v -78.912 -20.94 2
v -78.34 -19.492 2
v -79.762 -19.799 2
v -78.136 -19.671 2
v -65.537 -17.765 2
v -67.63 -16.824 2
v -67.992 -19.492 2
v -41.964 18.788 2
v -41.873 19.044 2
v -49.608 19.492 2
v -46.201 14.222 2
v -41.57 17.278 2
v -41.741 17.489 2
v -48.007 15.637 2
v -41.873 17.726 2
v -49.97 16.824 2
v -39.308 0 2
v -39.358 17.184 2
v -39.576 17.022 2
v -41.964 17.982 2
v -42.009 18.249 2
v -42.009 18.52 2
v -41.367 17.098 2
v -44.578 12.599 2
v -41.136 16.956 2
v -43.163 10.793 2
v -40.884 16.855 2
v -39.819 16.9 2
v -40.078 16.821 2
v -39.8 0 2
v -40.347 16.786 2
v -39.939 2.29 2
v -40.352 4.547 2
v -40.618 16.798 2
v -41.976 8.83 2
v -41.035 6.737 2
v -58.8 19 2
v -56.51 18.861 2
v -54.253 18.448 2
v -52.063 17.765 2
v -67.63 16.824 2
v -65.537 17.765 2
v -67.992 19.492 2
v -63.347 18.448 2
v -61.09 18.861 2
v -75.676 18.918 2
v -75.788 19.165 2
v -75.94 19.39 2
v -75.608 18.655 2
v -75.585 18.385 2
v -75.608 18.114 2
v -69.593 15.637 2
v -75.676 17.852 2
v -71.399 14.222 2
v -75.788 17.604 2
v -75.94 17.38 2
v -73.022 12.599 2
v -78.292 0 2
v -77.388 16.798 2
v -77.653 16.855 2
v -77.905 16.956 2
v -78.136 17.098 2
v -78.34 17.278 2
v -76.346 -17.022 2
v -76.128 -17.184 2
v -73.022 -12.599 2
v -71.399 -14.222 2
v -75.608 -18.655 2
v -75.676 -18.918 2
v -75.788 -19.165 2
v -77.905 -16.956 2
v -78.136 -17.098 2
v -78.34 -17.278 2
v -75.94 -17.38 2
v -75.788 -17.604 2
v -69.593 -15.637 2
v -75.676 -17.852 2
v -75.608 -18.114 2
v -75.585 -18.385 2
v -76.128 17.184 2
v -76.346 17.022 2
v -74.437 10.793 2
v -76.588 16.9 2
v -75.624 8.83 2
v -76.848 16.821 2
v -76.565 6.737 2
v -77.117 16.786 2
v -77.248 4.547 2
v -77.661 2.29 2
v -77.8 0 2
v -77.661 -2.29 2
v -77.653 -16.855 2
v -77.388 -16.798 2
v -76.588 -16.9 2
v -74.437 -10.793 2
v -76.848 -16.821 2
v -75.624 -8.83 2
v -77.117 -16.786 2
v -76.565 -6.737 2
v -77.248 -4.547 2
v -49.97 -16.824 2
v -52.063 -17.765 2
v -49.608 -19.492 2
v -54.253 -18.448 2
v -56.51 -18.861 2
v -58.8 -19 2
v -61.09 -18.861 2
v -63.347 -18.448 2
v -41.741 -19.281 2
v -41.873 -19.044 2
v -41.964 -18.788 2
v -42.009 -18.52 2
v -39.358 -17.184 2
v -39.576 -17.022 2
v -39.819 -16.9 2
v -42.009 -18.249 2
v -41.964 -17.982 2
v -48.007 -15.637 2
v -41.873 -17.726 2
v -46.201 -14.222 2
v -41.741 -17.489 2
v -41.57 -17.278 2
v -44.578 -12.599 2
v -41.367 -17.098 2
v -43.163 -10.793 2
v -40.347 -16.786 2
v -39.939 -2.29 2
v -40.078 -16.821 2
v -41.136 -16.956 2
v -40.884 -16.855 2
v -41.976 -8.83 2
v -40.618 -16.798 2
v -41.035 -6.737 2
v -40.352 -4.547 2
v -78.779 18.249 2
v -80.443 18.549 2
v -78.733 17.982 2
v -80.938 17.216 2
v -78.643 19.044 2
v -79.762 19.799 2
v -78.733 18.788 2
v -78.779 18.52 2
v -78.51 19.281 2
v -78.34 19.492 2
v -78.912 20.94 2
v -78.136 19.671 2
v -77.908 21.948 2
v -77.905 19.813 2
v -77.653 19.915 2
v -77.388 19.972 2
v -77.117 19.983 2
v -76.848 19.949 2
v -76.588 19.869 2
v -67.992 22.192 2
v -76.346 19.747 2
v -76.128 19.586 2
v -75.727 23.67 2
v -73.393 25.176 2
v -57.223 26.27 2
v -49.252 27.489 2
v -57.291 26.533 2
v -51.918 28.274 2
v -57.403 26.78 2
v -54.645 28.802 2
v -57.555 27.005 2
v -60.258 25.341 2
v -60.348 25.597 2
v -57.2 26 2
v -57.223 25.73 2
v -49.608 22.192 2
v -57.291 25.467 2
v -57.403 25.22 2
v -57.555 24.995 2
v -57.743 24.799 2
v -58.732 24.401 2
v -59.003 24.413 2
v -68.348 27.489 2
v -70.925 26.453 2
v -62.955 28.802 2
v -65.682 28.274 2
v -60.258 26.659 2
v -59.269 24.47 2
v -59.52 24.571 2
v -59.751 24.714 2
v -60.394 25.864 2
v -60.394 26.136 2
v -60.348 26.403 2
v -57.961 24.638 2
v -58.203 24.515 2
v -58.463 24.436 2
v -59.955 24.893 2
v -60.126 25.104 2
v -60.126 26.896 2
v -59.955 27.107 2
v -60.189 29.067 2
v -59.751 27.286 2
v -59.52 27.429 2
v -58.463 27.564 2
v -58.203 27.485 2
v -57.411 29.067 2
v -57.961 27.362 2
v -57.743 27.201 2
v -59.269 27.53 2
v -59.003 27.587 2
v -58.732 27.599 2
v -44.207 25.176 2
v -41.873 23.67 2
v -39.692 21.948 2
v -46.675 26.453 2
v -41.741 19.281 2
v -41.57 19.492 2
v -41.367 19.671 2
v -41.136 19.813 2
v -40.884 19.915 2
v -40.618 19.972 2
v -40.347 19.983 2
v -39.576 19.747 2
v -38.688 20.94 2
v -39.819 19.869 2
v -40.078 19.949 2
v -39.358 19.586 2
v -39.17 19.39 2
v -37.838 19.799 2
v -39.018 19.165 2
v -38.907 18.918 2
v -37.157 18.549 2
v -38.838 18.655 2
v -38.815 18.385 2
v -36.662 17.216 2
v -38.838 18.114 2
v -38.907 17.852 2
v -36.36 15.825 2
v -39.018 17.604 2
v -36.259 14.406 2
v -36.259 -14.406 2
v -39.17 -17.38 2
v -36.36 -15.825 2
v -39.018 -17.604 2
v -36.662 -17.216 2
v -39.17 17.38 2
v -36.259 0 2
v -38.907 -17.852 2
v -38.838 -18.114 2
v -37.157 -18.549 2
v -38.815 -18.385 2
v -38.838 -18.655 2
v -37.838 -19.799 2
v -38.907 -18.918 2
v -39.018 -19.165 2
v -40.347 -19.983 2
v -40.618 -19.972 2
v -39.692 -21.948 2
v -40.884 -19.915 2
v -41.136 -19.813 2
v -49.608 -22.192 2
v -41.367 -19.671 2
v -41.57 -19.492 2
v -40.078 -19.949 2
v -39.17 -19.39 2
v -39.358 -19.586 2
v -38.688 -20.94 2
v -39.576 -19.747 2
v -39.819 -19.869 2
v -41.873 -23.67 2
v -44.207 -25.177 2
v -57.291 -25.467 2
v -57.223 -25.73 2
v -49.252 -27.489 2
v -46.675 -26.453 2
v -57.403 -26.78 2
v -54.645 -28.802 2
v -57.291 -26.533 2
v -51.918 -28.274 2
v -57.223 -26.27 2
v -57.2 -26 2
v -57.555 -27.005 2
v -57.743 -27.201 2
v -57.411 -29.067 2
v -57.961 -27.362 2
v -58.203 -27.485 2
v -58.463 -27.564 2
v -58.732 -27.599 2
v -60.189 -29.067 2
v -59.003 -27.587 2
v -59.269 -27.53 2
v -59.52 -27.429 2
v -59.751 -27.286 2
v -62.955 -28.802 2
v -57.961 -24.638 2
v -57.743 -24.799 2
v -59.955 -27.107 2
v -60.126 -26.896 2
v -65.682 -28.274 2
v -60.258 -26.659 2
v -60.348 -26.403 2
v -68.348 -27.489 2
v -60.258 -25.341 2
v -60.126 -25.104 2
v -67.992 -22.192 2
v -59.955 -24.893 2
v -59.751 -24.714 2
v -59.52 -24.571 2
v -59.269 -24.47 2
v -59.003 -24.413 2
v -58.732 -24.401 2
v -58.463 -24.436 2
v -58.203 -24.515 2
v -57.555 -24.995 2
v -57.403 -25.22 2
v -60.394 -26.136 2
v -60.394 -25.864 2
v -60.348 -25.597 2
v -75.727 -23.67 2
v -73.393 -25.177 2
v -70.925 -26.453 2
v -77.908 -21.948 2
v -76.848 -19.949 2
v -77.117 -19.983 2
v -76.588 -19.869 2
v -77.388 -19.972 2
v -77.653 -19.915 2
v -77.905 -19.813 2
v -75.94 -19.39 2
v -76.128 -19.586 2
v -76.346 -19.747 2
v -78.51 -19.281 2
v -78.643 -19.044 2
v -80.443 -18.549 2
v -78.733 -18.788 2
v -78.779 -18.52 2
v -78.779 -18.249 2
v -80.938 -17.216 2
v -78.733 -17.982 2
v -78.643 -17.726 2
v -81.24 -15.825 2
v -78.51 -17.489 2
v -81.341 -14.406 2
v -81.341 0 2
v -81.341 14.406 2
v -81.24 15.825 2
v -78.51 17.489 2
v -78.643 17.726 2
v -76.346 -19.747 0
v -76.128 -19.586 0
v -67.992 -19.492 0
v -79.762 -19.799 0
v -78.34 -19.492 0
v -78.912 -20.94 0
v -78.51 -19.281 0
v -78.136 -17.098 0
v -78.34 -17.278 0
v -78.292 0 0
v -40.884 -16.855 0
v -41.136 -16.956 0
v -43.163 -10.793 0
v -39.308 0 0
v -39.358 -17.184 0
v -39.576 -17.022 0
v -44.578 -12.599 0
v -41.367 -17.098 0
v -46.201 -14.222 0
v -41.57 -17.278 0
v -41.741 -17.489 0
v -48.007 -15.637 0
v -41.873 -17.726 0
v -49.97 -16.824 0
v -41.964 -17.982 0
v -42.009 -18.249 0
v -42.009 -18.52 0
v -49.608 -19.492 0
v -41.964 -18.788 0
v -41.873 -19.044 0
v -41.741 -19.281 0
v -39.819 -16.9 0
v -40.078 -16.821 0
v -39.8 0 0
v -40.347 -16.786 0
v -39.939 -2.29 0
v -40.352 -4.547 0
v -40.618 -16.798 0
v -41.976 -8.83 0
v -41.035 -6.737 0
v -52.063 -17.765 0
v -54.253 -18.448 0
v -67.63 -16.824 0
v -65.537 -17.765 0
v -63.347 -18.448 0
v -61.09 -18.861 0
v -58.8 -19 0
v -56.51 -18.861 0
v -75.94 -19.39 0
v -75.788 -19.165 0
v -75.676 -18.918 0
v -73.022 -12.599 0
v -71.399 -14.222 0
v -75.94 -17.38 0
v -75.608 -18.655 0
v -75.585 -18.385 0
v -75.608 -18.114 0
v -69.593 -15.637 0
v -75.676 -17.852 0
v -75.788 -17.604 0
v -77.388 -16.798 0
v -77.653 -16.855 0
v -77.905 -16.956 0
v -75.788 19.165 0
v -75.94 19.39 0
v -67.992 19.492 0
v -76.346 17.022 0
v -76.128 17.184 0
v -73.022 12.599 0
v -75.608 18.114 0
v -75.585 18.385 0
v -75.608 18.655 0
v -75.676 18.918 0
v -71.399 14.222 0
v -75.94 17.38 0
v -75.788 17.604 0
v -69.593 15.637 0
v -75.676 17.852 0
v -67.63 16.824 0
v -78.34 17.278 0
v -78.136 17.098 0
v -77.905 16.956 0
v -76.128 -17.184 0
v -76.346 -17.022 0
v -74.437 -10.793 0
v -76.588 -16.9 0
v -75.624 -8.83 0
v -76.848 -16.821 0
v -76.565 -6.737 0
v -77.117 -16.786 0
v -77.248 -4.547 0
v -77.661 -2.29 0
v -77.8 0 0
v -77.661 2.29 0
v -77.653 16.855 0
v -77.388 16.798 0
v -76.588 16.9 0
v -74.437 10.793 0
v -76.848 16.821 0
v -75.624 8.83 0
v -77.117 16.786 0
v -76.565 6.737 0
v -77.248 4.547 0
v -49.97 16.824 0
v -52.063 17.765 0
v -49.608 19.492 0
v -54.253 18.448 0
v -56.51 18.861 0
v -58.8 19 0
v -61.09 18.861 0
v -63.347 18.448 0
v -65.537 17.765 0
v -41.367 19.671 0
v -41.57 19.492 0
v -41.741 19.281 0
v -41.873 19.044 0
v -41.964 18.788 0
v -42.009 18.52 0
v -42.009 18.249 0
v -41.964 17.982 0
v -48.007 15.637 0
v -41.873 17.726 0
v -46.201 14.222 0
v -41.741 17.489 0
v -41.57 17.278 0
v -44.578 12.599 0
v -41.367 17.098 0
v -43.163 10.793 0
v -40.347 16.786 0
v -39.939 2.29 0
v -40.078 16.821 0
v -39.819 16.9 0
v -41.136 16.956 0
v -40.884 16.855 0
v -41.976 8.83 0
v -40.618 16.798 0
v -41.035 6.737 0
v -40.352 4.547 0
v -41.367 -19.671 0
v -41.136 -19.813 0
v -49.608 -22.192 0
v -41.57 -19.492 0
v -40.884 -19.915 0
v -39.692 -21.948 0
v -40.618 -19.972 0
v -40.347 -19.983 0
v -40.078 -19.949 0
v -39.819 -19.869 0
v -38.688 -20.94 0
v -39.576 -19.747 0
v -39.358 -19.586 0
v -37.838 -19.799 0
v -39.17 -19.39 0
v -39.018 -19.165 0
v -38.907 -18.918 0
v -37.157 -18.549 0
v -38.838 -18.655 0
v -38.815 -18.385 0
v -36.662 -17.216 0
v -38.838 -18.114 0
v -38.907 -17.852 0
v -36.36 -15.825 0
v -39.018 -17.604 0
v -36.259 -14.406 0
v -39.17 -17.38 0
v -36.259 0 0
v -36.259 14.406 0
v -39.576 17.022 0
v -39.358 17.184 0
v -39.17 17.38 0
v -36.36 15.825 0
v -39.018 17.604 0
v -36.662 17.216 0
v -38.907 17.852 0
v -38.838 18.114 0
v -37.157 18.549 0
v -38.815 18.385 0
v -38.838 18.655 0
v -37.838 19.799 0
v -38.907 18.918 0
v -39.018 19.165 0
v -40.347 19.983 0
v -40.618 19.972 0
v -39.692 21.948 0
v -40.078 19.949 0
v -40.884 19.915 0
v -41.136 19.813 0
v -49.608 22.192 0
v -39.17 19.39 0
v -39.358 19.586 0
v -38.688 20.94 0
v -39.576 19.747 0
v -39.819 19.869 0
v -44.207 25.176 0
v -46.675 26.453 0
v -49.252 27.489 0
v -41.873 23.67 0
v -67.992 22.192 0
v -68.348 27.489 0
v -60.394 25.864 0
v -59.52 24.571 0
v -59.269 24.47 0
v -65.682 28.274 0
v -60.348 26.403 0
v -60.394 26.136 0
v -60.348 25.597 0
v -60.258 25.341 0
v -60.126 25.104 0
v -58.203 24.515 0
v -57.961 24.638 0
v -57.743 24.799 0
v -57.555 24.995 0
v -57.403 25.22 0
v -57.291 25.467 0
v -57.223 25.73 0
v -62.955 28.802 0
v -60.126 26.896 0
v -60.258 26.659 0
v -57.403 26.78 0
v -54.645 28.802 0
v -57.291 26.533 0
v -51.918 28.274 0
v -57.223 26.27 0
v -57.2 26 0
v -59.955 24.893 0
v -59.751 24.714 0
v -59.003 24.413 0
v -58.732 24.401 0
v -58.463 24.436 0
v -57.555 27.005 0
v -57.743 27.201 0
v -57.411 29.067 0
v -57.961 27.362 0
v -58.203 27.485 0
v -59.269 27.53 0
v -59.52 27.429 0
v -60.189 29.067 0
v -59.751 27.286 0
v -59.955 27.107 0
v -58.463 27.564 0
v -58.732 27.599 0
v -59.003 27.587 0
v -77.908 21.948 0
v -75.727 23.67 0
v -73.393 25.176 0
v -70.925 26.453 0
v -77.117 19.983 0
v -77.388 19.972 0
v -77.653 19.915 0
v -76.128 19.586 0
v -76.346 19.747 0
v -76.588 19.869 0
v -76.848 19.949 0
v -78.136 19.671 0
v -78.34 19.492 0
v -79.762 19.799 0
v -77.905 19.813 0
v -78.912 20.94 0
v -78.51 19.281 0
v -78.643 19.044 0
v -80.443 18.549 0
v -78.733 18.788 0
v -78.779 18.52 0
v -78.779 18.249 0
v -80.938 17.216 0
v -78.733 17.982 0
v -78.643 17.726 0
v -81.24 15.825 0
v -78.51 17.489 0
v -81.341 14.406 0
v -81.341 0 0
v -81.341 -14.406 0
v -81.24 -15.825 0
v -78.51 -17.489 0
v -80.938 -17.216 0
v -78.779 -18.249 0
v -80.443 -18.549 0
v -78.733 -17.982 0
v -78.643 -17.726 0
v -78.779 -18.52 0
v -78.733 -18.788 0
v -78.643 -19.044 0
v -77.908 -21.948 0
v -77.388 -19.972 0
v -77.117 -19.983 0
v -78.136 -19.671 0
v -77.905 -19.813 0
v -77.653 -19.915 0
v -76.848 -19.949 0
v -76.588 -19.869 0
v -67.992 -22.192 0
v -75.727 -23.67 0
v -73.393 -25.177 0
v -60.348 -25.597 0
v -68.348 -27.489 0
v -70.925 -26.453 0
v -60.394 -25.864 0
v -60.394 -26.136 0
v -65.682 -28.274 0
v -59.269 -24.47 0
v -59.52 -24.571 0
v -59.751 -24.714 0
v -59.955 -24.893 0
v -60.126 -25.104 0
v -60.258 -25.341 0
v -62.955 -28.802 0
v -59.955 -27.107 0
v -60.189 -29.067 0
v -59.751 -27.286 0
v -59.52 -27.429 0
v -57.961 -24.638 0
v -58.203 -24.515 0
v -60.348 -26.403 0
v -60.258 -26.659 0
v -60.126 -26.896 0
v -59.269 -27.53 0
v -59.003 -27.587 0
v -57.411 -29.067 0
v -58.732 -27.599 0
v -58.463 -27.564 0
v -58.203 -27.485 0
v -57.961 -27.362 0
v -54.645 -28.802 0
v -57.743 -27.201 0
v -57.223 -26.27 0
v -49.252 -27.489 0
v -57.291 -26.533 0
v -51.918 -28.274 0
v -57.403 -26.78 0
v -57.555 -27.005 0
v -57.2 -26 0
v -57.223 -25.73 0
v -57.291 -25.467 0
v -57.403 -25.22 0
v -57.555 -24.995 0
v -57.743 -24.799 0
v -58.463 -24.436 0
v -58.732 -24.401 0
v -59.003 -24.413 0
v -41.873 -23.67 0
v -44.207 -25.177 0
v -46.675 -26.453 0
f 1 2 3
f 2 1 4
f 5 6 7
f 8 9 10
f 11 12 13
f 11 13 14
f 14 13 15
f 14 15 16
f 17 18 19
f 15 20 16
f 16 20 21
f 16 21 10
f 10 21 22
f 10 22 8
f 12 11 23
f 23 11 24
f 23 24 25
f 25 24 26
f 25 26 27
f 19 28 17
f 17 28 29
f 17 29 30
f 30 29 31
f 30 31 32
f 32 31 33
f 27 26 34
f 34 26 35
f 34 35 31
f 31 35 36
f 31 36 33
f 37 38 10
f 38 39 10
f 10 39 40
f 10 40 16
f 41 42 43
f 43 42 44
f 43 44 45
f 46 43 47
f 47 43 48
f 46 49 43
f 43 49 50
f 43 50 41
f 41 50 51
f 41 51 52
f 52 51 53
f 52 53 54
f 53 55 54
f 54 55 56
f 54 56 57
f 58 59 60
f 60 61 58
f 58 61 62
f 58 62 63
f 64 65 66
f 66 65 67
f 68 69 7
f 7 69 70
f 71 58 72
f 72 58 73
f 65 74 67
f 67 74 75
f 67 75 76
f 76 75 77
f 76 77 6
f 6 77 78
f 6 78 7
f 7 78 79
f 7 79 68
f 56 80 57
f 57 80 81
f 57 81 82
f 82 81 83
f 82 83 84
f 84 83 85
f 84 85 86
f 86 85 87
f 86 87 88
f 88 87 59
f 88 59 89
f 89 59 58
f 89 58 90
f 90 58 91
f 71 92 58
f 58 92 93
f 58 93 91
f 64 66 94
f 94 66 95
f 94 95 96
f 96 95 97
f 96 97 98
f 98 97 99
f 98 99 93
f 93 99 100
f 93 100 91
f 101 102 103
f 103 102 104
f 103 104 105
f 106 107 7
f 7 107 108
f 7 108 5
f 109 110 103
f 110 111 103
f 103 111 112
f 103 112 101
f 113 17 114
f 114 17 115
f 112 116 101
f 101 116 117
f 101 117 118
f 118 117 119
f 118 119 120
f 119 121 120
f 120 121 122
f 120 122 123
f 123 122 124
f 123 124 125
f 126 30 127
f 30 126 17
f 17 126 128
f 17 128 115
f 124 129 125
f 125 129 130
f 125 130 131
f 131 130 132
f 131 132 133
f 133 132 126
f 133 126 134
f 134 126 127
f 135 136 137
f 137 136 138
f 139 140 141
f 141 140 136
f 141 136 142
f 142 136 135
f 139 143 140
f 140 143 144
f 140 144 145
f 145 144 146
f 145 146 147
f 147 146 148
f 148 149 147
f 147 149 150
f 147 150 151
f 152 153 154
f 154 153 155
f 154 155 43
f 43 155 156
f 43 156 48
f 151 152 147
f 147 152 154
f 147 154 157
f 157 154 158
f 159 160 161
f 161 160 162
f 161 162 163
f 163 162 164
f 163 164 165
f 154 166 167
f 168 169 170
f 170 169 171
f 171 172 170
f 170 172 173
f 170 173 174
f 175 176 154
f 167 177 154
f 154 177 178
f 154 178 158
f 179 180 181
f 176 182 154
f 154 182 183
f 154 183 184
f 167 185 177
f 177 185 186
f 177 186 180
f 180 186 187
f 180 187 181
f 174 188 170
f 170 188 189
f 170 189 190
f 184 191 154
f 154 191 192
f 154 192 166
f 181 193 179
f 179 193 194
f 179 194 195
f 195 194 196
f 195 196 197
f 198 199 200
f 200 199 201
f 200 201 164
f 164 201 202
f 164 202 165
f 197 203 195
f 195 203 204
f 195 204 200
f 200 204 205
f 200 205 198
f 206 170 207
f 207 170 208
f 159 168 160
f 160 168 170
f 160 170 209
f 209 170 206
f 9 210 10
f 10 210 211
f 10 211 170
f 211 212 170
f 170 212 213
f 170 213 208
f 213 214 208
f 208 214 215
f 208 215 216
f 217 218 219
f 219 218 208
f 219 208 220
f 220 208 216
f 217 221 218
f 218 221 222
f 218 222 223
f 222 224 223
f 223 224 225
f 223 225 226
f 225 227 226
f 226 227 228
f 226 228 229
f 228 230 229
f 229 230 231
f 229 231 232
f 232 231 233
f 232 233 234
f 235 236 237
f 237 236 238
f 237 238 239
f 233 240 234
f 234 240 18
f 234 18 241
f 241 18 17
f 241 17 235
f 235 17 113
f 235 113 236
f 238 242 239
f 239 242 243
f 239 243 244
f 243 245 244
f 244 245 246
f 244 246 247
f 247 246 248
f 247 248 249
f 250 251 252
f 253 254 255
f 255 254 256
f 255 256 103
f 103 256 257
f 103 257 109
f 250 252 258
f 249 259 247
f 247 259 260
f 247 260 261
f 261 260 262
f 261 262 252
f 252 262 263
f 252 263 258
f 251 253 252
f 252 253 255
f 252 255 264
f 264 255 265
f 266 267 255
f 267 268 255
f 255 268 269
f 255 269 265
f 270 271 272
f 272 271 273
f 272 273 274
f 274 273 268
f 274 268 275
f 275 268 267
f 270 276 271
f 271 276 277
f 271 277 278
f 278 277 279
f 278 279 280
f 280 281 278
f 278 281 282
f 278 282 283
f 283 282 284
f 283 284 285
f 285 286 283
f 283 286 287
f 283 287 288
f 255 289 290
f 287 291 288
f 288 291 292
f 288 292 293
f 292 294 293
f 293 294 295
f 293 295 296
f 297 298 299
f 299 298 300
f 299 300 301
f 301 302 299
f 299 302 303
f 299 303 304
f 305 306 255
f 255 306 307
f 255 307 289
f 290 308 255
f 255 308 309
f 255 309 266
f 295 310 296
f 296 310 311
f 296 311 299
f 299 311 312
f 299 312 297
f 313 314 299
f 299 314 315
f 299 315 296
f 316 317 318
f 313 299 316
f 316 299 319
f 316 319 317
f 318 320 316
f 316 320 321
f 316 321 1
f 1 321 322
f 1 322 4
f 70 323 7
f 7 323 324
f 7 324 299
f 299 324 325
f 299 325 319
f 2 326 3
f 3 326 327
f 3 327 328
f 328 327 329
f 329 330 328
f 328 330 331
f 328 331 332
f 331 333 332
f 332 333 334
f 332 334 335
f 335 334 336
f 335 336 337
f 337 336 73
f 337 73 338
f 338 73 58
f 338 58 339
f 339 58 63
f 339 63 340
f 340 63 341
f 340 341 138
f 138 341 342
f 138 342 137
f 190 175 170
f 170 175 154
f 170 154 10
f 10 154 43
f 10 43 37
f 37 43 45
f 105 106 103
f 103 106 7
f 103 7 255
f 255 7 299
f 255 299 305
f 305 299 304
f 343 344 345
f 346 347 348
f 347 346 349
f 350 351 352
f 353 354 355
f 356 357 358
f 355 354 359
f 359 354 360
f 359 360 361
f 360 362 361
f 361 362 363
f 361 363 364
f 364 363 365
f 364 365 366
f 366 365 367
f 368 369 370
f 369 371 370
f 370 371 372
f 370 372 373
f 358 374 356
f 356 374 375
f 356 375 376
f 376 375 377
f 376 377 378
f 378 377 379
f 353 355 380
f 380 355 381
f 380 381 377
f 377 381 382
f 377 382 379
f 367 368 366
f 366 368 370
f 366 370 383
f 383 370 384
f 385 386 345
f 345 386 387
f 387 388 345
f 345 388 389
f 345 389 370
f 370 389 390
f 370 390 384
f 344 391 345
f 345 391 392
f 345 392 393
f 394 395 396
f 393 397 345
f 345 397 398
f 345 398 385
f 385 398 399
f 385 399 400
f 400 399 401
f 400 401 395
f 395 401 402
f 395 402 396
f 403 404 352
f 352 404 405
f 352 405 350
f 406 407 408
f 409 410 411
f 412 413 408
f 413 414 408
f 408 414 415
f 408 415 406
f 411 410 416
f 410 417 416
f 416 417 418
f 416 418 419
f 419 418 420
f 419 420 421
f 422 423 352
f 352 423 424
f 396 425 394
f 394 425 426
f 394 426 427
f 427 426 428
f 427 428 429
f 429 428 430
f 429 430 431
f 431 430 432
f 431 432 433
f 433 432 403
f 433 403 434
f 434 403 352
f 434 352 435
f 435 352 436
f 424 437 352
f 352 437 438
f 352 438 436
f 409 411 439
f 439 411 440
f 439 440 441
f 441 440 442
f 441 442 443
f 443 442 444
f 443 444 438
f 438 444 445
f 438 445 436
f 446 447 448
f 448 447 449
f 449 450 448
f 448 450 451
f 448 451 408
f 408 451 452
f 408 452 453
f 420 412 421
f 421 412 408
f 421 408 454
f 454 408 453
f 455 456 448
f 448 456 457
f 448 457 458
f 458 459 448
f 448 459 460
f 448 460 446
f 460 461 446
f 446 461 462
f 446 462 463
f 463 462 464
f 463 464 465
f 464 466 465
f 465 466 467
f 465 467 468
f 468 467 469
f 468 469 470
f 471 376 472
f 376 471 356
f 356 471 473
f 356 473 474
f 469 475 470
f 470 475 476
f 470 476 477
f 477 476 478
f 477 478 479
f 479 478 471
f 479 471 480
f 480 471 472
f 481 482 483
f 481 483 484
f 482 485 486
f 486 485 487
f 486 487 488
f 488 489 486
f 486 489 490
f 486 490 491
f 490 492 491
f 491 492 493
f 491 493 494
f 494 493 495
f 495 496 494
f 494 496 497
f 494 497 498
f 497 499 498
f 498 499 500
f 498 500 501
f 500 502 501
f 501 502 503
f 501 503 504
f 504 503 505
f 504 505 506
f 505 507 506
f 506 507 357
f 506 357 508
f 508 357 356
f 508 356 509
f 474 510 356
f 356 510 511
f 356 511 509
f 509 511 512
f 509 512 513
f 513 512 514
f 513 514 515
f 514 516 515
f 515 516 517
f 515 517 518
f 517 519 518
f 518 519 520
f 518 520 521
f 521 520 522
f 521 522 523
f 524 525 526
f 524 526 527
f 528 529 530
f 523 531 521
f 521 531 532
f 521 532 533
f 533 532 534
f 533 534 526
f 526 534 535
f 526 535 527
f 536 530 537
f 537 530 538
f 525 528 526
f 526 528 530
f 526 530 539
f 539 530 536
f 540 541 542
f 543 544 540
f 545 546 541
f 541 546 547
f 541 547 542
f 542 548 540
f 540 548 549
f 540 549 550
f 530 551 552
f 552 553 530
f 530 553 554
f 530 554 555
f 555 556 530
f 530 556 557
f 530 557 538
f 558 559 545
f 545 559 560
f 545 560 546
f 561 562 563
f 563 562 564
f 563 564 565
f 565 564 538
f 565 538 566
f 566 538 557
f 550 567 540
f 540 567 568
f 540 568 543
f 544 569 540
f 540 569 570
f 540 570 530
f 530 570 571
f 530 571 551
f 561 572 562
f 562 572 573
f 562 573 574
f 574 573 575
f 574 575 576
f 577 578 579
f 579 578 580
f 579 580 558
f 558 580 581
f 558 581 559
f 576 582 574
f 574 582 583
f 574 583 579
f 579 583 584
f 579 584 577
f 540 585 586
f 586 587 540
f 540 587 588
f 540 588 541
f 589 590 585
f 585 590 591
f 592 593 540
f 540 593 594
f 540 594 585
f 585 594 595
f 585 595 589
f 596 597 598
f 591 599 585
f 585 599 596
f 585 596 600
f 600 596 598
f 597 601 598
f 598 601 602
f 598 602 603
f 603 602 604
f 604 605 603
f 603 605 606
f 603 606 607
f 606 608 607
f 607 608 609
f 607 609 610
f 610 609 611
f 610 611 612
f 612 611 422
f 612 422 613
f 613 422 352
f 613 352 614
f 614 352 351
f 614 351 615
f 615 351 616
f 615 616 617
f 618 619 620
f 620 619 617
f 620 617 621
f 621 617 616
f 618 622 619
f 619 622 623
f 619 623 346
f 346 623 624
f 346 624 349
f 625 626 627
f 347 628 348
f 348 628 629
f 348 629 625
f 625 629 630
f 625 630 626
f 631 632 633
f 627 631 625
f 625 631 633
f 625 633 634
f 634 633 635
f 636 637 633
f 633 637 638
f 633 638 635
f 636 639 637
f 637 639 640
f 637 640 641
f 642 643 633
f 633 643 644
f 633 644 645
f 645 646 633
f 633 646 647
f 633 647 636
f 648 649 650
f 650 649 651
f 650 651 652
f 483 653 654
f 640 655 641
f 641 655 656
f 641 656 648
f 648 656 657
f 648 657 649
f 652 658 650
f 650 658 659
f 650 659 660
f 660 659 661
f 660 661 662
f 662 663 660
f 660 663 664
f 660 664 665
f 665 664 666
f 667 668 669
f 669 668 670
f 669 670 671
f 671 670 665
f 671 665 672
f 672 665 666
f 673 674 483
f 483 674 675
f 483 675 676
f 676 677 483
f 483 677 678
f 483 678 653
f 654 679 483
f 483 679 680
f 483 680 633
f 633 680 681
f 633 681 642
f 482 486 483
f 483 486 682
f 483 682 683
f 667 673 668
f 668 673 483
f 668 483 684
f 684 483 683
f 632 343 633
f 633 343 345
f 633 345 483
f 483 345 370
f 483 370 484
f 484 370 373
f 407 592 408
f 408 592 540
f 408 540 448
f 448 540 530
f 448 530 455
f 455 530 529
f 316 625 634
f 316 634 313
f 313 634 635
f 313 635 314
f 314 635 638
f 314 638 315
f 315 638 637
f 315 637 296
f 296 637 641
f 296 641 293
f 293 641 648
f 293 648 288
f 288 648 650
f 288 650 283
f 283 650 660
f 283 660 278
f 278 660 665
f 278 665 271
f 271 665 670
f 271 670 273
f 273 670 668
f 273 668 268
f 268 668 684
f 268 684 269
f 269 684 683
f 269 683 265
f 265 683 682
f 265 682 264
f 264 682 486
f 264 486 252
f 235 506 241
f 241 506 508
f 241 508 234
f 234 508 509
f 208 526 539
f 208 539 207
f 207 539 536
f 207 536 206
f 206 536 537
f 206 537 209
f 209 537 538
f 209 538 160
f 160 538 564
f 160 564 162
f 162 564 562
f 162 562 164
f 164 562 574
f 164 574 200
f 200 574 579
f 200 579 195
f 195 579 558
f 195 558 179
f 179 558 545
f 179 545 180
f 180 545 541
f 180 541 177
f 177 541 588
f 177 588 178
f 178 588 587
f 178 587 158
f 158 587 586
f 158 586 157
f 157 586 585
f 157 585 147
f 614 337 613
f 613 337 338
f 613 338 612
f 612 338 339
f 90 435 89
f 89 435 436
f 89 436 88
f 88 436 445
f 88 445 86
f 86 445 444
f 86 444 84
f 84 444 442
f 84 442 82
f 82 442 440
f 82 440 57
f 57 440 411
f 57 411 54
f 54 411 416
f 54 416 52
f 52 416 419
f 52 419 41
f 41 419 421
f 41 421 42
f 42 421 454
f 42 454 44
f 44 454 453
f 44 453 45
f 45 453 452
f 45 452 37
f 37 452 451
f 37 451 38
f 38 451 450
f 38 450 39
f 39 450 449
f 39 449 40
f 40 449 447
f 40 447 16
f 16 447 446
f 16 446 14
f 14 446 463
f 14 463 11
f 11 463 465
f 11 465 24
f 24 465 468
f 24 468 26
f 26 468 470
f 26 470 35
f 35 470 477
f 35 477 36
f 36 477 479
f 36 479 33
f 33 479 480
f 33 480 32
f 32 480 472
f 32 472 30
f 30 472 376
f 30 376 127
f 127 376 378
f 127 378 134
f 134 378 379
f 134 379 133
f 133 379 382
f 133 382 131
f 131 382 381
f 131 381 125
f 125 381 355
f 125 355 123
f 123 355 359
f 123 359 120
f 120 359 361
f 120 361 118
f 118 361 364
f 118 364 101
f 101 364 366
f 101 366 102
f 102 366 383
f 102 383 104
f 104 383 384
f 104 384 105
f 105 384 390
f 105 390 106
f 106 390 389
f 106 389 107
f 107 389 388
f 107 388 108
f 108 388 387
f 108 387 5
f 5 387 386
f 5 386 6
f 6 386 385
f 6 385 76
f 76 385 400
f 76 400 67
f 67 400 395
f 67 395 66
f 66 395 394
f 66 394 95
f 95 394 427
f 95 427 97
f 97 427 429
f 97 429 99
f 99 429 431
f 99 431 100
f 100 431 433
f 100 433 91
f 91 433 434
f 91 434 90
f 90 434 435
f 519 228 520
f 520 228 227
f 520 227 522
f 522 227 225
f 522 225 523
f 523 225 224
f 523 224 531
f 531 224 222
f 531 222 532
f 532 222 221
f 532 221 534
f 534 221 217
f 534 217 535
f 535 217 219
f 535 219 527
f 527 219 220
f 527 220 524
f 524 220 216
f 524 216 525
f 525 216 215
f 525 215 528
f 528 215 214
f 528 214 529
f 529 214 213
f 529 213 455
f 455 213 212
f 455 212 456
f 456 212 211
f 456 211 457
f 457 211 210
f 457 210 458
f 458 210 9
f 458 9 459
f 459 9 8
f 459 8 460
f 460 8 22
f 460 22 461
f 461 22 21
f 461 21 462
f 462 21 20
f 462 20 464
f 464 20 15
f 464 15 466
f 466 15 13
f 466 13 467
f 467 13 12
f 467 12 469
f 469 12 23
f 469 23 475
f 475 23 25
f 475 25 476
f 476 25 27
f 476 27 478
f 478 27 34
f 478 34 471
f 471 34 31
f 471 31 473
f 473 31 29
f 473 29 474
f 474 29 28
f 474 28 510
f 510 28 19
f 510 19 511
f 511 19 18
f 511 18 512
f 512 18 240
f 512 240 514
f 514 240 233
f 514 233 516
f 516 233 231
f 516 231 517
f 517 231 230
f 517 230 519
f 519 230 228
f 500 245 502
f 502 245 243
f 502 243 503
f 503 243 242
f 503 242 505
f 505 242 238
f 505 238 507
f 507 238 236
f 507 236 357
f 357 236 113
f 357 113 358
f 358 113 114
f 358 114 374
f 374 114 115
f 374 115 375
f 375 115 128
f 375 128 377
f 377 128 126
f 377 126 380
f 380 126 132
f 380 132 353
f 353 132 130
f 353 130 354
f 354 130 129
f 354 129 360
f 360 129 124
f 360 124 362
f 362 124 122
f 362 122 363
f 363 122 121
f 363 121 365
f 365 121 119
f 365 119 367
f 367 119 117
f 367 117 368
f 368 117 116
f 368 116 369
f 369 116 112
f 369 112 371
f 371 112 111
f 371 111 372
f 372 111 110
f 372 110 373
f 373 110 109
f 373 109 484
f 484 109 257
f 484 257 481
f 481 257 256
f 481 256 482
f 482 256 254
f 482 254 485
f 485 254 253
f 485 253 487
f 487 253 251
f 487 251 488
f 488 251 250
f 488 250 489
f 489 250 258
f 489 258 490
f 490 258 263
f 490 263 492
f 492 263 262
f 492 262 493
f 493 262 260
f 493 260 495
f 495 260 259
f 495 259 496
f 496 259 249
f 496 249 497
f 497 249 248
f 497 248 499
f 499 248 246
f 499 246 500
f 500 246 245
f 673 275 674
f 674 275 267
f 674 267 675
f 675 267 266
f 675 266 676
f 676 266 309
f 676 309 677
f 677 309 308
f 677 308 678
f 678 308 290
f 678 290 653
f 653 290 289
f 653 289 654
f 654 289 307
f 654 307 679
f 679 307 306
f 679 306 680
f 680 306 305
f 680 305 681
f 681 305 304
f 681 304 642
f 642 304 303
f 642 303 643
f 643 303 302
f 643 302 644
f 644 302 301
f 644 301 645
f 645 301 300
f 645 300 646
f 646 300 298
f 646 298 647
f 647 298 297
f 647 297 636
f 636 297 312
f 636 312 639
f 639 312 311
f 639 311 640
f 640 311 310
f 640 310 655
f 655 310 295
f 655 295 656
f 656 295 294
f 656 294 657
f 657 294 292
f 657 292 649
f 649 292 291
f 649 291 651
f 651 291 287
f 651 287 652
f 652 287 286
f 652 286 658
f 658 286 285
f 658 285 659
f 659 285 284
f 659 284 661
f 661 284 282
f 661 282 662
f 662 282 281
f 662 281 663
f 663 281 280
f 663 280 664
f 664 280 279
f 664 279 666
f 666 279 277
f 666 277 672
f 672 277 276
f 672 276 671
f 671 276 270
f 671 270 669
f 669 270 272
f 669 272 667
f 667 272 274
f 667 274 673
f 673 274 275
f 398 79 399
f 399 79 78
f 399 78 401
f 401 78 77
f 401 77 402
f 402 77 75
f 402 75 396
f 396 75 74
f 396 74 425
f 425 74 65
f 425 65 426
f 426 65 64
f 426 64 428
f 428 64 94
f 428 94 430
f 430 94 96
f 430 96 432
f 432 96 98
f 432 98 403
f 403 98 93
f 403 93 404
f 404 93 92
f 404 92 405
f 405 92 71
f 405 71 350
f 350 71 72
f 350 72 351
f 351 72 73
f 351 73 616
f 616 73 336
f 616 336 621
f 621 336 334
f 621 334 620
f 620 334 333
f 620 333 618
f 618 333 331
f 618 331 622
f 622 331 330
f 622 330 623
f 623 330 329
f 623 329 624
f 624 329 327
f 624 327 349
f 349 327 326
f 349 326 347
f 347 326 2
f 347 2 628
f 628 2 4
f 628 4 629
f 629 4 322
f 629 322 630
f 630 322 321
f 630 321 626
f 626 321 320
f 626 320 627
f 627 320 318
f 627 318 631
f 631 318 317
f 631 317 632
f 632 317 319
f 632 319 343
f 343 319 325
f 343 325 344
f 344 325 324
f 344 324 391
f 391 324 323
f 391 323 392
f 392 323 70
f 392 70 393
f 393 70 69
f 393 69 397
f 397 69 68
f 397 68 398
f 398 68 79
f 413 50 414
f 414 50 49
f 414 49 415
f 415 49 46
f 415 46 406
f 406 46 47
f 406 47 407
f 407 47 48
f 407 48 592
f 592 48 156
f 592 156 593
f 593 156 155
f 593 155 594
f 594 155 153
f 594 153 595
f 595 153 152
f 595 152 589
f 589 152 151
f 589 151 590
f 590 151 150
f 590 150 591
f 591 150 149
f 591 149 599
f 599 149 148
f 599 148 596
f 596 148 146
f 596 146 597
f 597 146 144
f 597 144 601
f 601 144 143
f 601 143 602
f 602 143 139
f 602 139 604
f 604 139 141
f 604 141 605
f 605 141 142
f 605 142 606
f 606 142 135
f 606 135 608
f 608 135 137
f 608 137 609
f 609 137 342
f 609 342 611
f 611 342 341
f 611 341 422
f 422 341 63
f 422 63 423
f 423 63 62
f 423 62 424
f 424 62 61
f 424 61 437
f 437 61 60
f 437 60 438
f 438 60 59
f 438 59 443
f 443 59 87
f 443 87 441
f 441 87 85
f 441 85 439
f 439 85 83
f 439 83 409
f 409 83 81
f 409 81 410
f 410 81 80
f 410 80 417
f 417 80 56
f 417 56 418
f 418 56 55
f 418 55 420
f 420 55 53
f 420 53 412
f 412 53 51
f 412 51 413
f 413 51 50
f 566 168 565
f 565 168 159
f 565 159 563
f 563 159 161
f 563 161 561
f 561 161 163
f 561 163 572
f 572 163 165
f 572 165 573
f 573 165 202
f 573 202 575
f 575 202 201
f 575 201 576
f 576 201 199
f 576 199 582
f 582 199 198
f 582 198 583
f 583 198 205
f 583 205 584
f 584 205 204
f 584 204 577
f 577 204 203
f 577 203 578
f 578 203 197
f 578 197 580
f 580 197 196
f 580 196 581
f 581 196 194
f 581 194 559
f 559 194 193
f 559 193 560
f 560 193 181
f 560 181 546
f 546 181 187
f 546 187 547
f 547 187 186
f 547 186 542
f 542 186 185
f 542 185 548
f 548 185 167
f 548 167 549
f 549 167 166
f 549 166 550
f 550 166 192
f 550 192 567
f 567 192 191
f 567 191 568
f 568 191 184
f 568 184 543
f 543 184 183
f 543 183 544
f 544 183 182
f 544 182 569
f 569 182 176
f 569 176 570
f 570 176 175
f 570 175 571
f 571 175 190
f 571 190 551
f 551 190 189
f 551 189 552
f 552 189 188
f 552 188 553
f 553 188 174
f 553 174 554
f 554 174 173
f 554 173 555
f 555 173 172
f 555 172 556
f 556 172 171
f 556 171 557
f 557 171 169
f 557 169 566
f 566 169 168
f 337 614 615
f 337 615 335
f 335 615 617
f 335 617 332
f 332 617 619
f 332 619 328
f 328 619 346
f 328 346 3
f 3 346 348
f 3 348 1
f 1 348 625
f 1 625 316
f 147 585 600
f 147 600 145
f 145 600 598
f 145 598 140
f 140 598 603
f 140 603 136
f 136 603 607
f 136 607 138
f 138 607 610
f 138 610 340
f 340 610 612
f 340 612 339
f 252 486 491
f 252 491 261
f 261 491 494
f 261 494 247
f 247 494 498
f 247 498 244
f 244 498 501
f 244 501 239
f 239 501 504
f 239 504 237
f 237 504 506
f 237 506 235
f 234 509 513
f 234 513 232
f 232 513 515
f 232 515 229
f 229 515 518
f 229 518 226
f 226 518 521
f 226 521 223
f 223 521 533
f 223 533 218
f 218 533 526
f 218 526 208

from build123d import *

# Parameters (mm, degrees)
SKETCH1_R           = 19
BOSS_EXTRUDE1_DEPTH = 2
SKETCH2_R           = 1.6
CUT_EXTRUDE1_DEPTH  = 87.413117357
FILLET1_R           = 10


with BuildPart() as part:
    # Sketch1 → Boss-Extrude1 (new body)
    with BuildSketch(Plane.XY):
        with BuildLine():
            Line((-81.341360029, 18.403724841), (-81.341360029, -18.403724841))
            ThreePointArc((-81.341360029, -18.403724841), (-58.8, -29.1), (-36.258639971, -18.403724841))
            Line((-36.258639971, -18.403724841), (-36.258639971, 18.403724841))
            ThreePointArc((-36.258639971, 18.403724841), (-58.8, 29.1), (-81.341360029, 18.403724841))
        make_face()
        with Locations((-58.8, 0)):
            Circle(SKETCH1_R, mode=Mode.SUBTRACT)
    extrude(amount=BOSS_EXTRUDE1_DEPTH)

    # Sketch2 → Cut-Extrude1 (cut, through all)
    with BuildSketch(Plane.XY.offset(2)):
        with Locations((-58.8, 26)):
            Circle(SKETCH2_R)
        with Locations((-40.415223689, 18.384776311)):
            Circle(SKETCH2_R)
        with Locations((-40.415223689, -18.384776311)):
            Circle(SKETCH2_R)
        with Locations((-58.8, -26)):
            Circle(SKETCH2_R)
        with Locations((-77.184776311, -18.384776311)):
            Circle(SKETCH2_R)
        with Locations((-77.184776311, 18.384776311)):
            Circle(SKETCH2_R)
    extrude(amount=-CUT_EXTRUDE1_DEPTH, mode=Mode.SUBTRACT)

    # Fillet1
    fillet1_edges = [part.edges().sort_by_distance(p)[0] for p in [
        (-81.341360029, -18.403724841, 1),
        (-81.341360029, 18.403724841, 1),
        (-36.258639971, 18.403724841, 1),
        (-36.258639971, -18.403724841, 1),
    ]]
    fillet(fillet1_edges, radius=FILLET1_R)


solid = part.part
